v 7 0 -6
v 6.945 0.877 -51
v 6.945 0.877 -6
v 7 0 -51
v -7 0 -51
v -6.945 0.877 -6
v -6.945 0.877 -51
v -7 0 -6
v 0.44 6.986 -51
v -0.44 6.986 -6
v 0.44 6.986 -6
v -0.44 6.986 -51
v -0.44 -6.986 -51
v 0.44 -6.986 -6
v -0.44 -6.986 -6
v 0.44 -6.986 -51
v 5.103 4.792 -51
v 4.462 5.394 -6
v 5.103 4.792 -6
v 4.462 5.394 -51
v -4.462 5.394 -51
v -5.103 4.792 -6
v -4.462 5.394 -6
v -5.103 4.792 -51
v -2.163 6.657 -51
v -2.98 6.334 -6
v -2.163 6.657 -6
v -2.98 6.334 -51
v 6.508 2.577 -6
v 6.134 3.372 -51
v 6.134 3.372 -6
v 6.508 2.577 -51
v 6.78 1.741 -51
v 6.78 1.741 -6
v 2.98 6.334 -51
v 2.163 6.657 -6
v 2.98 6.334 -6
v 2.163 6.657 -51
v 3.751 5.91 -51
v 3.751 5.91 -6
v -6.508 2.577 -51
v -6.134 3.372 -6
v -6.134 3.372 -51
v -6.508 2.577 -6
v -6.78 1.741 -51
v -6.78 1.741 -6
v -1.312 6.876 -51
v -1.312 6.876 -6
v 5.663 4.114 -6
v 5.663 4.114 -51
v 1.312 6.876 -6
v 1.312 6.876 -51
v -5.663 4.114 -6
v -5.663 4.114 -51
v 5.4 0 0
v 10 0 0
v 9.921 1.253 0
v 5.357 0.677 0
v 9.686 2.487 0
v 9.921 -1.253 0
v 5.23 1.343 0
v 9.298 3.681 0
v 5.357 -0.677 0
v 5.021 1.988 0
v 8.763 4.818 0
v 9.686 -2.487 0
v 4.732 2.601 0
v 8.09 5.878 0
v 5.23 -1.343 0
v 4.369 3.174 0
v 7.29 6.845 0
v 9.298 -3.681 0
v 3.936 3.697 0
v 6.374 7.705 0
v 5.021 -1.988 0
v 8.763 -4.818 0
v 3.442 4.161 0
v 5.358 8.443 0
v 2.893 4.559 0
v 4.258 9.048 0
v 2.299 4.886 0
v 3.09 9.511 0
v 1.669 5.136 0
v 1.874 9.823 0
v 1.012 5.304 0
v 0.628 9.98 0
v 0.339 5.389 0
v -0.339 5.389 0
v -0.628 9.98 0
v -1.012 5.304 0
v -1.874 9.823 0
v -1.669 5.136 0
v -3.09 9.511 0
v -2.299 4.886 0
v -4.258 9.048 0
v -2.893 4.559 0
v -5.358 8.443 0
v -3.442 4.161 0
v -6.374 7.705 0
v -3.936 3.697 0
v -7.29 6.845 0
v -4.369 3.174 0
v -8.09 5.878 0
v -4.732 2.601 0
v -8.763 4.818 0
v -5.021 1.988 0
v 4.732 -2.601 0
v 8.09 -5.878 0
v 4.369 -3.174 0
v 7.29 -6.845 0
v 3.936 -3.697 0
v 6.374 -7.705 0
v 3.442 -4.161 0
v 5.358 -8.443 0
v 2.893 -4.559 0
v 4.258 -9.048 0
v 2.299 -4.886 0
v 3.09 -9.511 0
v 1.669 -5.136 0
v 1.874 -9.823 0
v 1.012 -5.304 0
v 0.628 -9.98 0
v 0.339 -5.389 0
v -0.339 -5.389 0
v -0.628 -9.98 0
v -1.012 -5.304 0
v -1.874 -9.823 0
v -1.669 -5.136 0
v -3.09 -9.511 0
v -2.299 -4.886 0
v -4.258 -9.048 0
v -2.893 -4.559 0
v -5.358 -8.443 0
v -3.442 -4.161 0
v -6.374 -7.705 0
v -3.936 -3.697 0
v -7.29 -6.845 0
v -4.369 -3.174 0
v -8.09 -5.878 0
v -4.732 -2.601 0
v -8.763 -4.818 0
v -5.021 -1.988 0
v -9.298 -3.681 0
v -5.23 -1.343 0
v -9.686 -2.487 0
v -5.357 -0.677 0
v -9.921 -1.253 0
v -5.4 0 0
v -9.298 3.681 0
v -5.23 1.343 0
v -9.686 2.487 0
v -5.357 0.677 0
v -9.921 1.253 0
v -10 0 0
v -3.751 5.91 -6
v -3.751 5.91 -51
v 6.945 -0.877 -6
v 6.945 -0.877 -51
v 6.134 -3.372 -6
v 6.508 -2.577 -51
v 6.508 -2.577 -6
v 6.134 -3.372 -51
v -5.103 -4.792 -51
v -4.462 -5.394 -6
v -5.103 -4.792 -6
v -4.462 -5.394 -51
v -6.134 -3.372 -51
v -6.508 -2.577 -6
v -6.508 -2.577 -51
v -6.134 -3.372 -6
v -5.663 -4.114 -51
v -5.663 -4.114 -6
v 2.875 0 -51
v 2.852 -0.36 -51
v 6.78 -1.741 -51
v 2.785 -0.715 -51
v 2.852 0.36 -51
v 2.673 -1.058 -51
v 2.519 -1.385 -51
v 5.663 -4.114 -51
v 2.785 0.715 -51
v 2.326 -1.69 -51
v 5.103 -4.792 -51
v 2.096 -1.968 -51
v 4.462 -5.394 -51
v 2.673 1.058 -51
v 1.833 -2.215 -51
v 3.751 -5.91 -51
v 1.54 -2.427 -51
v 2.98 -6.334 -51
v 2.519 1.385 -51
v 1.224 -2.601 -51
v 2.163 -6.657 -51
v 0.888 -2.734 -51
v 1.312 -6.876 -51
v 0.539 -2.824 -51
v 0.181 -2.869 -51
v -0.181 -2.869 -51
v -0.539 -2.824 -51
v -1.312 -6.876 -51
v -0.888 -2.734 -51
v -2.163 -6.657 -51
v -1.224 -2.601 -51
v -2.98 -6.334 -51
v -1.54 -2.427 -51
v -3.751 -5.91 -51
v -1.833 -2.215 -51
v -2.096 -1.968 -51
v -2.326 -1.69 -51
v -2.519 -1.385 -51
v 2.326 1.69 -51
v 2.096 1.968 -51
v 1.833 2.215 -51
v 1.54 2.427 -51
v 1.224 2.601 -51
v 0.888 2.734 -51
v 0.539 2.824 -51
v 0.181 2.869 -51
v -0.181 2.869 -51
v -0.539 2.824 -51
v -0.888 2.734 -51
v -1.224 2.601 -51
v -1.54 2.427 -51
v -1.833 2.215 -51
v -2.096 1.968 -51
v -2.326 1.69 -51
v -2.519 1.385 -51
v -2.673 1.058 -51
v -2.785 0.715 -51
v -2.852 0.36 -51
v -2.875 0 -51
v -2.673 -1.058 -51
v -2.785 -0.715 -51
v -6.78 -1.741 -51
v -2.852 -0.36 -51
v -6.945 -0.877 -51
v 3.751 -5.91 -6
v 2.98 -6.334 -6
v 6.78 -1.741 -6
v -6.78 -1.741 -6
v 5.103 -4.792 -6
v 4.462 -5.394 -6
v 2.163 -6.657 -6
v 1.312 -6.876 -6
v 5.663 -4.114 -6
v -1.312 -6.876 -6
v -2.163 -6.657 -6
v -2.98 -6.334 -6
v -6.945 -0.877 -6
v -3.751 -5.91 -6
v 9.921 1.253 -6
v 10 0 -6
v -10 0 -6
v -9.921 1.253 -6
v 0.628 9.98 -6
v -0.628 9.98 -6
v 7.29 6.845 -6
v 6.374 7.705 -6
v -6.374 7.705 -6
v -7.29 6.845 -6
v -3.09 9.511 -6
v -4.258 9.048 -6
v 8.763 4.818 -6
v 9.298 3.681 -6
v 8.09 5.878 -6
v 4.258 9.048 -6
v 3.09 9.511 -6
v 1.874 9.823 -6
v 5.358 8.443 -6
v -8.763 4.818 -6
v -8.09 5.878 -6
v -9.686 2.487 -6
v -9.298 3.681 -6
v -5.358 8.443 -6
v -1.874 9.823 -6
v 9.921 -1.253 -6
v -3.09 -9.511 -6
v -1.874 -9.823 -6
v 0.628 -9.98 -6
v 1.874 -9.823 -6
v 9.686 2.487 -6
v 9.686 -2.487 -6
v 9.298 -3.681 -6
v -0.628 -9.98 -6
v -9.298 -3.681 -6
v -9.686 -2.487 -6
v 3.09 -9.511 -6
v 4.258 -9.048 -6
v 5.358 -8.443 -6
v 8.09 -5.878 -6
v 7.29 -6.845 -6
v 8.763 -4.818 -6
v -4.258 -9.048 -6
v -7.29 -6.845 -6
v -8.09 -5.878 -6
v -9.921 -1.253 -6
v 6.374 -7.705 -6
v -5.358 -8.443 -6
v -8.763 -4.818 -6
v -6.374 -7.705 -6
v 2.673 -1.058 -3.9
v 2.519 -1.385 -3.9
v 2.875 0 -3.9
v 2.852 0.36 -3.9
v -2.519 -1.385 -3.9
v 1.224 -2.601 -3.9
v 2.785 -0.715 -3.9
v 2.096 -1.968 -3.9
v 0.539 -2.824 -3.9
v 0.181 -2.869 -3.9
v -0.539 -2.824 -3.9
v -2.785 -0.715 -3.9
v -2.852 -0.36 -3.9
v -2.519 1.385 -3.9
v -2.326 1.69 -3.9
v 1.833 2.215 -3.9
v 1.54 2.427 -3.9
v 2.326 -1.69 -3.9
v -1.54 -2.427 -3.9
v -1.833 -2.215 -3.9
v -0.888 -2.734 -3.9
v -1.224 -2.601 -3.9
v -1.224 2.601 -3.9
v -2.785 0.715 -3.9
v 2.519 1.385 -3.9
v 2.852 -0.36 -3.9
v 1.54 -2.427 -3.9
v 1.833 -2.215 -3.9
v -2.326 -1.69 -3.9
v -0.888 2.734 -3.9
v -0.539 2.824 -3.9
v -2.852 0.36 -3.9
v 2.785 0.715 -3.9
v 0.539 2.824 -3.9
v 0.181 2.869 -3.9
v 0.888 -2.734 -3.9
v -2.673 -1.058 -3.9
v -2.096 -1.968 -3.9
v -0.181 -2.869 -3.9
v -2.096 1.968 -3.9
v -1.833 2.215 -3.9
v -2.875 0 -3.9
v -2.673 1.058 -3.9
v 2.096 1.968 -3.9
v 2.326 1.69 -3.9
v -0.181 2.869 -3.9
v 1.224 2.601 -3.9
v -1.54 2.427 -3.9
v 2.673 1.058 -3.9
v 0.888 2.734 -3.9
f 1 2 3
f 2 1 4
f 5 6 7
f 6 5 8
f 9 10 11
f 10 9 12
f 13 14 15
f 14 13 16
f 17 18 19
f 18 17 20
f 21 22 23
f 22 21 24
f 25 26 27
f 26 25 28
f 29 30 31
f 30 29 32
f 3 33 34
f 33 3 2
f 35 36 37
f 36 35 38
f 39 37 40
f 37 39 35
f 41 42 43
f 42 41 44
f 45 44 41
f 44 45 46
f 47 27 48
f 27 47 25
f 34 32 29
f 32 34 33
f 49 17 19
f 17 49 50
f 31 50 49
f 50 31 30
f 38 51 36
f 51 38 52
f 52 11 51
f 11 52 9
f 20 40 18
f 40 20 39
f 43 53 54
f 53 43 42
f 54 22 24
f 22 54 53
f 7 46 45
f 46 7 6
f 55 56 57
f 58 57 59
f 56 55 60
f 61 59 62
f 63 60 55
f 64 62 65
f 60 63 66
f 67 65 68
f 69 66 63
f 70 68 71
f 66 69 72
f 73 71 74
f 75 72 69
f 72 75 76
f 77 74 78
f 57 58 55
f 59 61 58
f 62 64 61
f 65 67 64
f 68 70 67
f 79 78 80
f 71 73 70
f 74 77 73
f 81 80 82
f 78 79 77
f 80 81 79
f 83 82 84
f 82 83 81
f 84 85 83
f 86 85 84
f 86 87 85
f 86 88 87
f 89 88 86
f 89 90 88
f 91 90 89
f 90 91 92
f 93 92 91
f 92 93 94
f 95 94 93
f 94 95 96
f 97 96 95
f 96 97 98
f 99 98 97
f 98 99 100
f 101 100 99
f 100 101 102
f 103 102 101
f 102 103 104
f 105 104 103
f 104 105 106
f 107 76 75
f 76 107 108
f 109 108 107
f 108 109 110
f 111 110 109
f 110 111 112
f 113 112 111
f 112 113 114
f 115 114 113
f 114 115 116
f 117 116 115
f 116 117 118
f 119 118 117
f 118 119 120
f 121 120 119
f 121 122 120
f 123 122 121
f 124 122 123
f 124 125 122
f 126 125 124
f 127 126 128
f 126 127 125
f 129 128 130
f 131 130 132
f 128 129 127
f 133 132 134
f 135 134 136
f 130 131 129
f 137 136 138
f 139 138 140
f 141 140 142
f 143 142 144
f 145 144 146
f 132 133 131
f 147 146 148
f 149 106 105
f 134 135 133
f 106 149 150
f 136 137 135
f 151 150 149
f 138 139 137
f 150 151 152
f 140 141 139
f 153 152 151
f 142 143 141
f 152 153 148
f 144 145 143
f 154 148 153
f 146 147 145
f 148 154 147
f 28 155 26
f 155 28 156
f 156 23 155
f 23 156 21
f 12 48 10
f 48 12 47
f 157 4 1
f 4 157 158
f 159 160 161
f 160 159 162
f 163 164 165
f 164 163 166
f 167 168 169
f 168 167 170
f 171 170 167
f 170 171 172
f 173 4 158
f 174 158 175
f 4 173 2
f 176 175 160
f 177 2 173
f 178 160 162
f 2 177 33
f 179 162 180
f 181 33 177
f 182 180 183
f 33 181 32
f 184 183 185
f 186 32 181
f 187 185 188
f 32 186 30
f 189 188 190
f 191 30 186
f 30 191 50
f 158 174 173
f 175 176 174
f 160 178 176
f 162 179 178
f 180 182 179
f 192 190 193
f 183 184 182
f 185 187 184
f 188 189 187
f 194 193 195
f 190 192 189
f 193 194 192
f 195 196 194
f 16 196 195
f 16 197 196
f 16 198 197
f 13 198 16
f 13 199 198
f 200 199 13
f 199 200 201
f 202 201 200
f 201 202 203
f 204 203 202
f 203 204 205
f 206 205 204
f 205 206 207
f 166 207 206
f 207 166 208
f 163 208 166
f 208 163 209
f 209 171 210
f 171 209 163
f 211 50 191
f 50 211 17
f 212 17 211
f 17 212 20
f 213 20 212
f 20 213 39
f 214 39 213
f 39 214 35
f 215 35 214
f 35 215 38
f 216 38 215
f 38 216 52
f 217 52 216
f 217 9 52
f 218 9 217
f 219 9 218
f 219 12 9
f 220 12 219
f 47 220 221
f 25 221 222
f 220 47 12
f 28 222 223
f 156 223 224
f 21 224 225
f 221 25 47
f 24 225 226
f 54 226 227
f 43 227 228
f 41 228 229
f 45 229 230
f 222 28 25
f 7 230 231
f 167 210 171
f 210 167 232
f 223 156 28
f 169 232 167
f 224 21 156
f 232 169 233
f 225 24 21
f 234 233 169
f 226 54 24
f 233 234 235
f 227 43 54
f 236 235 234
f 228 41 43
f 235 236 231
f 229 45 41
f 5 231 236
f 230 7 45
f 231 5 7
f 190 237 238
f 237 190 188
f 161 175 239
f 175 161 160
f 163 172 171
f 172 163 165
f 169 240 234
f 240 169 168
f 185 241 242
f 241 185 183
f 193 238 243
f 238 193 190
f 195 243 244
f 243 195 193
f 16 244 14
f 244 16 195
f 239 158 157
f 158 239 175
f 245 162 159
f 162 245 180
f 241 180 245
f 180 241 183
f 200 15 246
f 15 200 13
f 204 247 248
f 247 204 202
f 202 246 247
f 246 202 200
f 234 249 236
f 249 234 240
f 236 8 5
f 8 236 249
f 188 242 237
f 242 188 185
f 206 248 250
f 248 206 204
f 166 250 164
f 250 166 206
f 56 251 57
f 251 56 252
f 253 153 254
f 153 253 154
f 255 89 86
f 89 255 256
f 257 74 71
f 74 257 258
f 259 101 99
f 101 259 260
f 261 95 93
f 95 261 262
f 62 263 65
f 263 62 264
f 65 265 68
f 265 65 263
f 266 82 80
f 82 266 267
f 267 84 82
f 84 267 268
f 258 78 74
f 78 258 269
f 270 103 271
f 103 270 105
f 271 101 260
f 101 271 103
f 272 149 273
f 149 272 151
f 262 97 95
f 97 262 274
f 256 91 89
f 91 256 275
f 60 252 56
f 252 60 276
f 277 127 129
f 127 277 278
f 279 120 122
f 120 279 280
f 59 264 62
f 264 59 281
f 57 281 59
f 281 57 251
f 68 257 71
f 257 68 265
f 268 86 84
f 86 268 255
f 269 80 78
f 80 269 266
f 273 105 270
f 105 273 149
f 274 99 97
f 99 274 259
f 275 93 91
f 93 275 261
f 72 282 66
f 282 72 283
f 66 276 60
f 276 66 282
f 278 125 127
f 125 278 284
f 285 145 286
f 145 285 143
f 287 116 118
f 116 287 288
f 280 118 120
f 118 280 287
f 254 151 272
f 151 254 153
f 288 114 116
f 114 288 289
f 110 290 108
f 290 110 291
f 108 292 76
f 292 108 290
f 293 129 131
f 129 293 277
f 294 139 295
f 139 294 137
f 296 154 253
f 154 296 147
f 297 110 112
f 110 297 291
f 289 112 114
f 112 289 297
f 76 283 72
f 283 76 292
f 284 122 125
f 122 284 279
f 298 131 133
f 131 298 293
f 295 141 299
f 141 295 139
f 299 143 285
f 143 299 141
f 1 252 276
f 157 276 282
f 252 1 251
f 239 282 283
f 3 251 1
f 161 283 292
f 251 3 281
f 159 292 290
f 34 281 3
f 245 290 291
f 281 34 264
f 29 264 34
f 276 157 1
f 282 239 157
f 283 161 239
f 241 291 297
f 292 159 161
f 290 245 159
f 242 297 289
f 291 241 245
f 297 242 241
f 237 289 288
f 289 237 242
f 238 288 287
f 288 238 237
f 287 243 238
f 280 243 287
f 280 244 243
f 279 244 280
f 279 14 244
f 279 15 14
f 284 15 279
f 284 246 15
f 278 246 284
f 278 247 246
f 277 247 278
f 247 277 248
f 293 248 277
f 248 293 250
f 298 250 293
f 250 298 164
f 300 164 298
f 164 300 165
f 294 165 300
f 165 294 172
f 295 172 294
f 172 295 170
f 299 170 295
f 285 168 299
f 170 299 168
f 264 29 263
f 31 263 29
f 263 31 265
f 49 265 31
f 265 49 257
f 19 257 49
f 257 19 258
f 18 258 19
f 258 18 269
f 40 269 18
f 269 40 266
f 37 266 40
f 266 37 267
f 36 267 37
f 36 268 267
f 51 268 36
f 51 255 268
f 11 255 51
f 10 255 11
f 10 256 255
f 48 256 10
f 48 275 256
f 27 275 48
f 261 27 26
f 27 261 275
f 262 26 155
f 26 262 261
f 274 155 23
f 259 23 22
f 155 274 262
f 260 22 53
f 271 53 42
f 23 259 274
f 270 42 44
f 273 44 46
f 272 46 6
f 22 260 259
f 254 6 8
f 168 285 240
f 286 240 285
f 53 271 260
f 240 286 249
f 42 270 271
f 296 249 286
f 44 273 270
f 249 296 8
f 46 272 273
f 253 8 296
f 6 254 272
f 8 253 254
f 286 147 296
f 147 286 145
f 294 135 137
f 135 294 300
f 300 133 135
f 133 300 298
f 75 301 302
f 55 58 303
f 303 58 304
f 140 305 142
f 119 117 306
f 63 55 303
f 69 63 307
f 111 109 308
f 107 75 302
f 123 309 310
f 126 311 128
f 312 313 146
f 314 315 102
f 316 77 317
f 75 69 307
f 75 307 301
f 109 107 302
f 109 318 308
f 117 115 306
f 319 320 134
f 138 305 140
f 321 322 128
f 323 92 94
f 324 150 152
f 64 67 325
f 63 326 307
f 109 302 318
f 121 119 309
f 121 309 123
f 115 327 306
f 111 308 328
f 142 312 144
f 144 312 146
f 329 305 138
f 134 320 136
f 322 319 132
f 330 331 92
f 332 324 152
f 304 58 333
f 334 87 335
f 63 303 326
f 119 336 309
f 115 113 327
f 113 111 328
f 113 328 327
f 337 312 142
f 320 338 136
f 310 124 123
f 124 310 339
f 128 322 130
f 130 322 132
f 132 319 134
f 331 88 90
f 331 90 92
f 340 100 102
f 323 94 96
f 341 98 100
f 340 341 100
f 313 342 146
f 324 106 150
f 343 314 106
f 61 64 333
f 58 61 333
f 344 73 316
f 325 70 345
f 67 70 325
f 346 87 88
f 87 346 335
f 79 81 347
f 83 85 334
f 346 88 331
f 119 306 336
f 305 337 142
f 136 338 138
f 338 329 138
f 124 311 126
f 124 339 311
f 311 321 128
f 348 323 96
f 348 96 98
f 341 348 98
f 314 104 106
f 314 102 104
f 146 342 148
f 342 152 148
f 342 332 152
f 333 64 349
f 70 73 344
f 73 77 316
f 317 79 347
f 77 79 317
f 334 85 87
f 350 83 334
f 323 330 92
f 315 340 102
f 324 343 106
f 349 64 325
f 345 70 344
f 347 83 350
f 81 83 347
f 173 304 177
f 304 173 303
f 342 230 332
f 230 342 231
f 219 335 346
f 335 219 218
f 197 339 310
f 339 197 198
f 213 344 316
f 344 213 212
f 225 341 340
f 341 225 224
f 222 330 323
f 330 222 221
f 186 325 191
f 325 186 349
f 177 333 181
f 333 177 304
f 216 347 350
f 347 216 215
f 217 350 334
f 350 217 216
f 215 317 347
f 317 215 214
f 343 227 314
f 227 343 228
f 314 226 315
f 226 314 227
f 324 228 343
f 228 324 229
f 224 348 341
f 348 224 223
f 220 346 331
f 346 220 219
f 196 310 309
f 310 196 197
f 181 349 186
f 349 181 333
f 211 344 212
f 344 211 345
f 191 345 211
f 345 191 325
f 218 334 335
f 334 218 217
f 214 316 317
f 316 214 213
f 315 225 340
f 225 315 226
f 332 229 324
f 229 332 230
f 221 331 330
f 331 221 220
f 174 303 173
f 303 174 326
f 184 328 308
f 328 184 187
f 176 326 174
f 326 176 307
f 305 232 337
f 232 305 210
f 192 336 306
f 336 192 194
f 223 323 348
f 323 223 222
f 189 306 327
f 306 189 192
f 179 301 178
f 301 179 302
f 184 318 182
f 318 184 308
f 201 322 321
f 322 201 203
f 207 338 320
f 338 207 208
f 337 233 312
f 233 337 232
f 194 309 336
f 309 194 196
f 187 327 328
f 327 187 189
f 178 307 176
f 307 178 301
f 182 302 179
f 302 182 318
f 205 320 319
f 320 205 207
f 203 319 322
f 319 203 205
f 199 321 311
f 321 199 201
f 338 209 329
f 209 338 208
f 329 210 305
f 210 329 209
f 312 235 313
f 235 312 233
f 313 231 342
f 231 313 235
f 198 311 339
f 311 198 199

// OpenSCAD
$fn = 50;


difference() {
	union() {
		translate(v = [0, 0, -51.0000000000]) {
			cylinder(h = 51, r = 7.0000000000);
		}
		translate(v = [0, 0, -6.0000000000]) {
			cylinder(h = 6, r = 10.0000000000);
		}
	}
	union() {
		translate(v = [0, 0, 0]) {
			rotate(a = [0, 0, 0]) {
				difference() {
					union() {
						#translate(v = [0, 0, -51.0000000000]) {
							cylinder(h = 51, r = 2.6000000000);
						}
						#translate(v = [0, 0, -3.9000000000]) {
							cylinder(h = 3.9000000000, r = 7.0000000000, r1 = 2.8750000000, r2 = 5.4000000000);
						}
						#translate(v = [0, 0, -51.0000000000]) {
							cylinder(h = 51, r = 2.8750000000);
						}
						#translate(v = [0, 0, -51.0000000000]) {
							cylinder(h = 51, r = 2.6000000000);
						}
					}
					union();
				}
			}
		}
	}
}
